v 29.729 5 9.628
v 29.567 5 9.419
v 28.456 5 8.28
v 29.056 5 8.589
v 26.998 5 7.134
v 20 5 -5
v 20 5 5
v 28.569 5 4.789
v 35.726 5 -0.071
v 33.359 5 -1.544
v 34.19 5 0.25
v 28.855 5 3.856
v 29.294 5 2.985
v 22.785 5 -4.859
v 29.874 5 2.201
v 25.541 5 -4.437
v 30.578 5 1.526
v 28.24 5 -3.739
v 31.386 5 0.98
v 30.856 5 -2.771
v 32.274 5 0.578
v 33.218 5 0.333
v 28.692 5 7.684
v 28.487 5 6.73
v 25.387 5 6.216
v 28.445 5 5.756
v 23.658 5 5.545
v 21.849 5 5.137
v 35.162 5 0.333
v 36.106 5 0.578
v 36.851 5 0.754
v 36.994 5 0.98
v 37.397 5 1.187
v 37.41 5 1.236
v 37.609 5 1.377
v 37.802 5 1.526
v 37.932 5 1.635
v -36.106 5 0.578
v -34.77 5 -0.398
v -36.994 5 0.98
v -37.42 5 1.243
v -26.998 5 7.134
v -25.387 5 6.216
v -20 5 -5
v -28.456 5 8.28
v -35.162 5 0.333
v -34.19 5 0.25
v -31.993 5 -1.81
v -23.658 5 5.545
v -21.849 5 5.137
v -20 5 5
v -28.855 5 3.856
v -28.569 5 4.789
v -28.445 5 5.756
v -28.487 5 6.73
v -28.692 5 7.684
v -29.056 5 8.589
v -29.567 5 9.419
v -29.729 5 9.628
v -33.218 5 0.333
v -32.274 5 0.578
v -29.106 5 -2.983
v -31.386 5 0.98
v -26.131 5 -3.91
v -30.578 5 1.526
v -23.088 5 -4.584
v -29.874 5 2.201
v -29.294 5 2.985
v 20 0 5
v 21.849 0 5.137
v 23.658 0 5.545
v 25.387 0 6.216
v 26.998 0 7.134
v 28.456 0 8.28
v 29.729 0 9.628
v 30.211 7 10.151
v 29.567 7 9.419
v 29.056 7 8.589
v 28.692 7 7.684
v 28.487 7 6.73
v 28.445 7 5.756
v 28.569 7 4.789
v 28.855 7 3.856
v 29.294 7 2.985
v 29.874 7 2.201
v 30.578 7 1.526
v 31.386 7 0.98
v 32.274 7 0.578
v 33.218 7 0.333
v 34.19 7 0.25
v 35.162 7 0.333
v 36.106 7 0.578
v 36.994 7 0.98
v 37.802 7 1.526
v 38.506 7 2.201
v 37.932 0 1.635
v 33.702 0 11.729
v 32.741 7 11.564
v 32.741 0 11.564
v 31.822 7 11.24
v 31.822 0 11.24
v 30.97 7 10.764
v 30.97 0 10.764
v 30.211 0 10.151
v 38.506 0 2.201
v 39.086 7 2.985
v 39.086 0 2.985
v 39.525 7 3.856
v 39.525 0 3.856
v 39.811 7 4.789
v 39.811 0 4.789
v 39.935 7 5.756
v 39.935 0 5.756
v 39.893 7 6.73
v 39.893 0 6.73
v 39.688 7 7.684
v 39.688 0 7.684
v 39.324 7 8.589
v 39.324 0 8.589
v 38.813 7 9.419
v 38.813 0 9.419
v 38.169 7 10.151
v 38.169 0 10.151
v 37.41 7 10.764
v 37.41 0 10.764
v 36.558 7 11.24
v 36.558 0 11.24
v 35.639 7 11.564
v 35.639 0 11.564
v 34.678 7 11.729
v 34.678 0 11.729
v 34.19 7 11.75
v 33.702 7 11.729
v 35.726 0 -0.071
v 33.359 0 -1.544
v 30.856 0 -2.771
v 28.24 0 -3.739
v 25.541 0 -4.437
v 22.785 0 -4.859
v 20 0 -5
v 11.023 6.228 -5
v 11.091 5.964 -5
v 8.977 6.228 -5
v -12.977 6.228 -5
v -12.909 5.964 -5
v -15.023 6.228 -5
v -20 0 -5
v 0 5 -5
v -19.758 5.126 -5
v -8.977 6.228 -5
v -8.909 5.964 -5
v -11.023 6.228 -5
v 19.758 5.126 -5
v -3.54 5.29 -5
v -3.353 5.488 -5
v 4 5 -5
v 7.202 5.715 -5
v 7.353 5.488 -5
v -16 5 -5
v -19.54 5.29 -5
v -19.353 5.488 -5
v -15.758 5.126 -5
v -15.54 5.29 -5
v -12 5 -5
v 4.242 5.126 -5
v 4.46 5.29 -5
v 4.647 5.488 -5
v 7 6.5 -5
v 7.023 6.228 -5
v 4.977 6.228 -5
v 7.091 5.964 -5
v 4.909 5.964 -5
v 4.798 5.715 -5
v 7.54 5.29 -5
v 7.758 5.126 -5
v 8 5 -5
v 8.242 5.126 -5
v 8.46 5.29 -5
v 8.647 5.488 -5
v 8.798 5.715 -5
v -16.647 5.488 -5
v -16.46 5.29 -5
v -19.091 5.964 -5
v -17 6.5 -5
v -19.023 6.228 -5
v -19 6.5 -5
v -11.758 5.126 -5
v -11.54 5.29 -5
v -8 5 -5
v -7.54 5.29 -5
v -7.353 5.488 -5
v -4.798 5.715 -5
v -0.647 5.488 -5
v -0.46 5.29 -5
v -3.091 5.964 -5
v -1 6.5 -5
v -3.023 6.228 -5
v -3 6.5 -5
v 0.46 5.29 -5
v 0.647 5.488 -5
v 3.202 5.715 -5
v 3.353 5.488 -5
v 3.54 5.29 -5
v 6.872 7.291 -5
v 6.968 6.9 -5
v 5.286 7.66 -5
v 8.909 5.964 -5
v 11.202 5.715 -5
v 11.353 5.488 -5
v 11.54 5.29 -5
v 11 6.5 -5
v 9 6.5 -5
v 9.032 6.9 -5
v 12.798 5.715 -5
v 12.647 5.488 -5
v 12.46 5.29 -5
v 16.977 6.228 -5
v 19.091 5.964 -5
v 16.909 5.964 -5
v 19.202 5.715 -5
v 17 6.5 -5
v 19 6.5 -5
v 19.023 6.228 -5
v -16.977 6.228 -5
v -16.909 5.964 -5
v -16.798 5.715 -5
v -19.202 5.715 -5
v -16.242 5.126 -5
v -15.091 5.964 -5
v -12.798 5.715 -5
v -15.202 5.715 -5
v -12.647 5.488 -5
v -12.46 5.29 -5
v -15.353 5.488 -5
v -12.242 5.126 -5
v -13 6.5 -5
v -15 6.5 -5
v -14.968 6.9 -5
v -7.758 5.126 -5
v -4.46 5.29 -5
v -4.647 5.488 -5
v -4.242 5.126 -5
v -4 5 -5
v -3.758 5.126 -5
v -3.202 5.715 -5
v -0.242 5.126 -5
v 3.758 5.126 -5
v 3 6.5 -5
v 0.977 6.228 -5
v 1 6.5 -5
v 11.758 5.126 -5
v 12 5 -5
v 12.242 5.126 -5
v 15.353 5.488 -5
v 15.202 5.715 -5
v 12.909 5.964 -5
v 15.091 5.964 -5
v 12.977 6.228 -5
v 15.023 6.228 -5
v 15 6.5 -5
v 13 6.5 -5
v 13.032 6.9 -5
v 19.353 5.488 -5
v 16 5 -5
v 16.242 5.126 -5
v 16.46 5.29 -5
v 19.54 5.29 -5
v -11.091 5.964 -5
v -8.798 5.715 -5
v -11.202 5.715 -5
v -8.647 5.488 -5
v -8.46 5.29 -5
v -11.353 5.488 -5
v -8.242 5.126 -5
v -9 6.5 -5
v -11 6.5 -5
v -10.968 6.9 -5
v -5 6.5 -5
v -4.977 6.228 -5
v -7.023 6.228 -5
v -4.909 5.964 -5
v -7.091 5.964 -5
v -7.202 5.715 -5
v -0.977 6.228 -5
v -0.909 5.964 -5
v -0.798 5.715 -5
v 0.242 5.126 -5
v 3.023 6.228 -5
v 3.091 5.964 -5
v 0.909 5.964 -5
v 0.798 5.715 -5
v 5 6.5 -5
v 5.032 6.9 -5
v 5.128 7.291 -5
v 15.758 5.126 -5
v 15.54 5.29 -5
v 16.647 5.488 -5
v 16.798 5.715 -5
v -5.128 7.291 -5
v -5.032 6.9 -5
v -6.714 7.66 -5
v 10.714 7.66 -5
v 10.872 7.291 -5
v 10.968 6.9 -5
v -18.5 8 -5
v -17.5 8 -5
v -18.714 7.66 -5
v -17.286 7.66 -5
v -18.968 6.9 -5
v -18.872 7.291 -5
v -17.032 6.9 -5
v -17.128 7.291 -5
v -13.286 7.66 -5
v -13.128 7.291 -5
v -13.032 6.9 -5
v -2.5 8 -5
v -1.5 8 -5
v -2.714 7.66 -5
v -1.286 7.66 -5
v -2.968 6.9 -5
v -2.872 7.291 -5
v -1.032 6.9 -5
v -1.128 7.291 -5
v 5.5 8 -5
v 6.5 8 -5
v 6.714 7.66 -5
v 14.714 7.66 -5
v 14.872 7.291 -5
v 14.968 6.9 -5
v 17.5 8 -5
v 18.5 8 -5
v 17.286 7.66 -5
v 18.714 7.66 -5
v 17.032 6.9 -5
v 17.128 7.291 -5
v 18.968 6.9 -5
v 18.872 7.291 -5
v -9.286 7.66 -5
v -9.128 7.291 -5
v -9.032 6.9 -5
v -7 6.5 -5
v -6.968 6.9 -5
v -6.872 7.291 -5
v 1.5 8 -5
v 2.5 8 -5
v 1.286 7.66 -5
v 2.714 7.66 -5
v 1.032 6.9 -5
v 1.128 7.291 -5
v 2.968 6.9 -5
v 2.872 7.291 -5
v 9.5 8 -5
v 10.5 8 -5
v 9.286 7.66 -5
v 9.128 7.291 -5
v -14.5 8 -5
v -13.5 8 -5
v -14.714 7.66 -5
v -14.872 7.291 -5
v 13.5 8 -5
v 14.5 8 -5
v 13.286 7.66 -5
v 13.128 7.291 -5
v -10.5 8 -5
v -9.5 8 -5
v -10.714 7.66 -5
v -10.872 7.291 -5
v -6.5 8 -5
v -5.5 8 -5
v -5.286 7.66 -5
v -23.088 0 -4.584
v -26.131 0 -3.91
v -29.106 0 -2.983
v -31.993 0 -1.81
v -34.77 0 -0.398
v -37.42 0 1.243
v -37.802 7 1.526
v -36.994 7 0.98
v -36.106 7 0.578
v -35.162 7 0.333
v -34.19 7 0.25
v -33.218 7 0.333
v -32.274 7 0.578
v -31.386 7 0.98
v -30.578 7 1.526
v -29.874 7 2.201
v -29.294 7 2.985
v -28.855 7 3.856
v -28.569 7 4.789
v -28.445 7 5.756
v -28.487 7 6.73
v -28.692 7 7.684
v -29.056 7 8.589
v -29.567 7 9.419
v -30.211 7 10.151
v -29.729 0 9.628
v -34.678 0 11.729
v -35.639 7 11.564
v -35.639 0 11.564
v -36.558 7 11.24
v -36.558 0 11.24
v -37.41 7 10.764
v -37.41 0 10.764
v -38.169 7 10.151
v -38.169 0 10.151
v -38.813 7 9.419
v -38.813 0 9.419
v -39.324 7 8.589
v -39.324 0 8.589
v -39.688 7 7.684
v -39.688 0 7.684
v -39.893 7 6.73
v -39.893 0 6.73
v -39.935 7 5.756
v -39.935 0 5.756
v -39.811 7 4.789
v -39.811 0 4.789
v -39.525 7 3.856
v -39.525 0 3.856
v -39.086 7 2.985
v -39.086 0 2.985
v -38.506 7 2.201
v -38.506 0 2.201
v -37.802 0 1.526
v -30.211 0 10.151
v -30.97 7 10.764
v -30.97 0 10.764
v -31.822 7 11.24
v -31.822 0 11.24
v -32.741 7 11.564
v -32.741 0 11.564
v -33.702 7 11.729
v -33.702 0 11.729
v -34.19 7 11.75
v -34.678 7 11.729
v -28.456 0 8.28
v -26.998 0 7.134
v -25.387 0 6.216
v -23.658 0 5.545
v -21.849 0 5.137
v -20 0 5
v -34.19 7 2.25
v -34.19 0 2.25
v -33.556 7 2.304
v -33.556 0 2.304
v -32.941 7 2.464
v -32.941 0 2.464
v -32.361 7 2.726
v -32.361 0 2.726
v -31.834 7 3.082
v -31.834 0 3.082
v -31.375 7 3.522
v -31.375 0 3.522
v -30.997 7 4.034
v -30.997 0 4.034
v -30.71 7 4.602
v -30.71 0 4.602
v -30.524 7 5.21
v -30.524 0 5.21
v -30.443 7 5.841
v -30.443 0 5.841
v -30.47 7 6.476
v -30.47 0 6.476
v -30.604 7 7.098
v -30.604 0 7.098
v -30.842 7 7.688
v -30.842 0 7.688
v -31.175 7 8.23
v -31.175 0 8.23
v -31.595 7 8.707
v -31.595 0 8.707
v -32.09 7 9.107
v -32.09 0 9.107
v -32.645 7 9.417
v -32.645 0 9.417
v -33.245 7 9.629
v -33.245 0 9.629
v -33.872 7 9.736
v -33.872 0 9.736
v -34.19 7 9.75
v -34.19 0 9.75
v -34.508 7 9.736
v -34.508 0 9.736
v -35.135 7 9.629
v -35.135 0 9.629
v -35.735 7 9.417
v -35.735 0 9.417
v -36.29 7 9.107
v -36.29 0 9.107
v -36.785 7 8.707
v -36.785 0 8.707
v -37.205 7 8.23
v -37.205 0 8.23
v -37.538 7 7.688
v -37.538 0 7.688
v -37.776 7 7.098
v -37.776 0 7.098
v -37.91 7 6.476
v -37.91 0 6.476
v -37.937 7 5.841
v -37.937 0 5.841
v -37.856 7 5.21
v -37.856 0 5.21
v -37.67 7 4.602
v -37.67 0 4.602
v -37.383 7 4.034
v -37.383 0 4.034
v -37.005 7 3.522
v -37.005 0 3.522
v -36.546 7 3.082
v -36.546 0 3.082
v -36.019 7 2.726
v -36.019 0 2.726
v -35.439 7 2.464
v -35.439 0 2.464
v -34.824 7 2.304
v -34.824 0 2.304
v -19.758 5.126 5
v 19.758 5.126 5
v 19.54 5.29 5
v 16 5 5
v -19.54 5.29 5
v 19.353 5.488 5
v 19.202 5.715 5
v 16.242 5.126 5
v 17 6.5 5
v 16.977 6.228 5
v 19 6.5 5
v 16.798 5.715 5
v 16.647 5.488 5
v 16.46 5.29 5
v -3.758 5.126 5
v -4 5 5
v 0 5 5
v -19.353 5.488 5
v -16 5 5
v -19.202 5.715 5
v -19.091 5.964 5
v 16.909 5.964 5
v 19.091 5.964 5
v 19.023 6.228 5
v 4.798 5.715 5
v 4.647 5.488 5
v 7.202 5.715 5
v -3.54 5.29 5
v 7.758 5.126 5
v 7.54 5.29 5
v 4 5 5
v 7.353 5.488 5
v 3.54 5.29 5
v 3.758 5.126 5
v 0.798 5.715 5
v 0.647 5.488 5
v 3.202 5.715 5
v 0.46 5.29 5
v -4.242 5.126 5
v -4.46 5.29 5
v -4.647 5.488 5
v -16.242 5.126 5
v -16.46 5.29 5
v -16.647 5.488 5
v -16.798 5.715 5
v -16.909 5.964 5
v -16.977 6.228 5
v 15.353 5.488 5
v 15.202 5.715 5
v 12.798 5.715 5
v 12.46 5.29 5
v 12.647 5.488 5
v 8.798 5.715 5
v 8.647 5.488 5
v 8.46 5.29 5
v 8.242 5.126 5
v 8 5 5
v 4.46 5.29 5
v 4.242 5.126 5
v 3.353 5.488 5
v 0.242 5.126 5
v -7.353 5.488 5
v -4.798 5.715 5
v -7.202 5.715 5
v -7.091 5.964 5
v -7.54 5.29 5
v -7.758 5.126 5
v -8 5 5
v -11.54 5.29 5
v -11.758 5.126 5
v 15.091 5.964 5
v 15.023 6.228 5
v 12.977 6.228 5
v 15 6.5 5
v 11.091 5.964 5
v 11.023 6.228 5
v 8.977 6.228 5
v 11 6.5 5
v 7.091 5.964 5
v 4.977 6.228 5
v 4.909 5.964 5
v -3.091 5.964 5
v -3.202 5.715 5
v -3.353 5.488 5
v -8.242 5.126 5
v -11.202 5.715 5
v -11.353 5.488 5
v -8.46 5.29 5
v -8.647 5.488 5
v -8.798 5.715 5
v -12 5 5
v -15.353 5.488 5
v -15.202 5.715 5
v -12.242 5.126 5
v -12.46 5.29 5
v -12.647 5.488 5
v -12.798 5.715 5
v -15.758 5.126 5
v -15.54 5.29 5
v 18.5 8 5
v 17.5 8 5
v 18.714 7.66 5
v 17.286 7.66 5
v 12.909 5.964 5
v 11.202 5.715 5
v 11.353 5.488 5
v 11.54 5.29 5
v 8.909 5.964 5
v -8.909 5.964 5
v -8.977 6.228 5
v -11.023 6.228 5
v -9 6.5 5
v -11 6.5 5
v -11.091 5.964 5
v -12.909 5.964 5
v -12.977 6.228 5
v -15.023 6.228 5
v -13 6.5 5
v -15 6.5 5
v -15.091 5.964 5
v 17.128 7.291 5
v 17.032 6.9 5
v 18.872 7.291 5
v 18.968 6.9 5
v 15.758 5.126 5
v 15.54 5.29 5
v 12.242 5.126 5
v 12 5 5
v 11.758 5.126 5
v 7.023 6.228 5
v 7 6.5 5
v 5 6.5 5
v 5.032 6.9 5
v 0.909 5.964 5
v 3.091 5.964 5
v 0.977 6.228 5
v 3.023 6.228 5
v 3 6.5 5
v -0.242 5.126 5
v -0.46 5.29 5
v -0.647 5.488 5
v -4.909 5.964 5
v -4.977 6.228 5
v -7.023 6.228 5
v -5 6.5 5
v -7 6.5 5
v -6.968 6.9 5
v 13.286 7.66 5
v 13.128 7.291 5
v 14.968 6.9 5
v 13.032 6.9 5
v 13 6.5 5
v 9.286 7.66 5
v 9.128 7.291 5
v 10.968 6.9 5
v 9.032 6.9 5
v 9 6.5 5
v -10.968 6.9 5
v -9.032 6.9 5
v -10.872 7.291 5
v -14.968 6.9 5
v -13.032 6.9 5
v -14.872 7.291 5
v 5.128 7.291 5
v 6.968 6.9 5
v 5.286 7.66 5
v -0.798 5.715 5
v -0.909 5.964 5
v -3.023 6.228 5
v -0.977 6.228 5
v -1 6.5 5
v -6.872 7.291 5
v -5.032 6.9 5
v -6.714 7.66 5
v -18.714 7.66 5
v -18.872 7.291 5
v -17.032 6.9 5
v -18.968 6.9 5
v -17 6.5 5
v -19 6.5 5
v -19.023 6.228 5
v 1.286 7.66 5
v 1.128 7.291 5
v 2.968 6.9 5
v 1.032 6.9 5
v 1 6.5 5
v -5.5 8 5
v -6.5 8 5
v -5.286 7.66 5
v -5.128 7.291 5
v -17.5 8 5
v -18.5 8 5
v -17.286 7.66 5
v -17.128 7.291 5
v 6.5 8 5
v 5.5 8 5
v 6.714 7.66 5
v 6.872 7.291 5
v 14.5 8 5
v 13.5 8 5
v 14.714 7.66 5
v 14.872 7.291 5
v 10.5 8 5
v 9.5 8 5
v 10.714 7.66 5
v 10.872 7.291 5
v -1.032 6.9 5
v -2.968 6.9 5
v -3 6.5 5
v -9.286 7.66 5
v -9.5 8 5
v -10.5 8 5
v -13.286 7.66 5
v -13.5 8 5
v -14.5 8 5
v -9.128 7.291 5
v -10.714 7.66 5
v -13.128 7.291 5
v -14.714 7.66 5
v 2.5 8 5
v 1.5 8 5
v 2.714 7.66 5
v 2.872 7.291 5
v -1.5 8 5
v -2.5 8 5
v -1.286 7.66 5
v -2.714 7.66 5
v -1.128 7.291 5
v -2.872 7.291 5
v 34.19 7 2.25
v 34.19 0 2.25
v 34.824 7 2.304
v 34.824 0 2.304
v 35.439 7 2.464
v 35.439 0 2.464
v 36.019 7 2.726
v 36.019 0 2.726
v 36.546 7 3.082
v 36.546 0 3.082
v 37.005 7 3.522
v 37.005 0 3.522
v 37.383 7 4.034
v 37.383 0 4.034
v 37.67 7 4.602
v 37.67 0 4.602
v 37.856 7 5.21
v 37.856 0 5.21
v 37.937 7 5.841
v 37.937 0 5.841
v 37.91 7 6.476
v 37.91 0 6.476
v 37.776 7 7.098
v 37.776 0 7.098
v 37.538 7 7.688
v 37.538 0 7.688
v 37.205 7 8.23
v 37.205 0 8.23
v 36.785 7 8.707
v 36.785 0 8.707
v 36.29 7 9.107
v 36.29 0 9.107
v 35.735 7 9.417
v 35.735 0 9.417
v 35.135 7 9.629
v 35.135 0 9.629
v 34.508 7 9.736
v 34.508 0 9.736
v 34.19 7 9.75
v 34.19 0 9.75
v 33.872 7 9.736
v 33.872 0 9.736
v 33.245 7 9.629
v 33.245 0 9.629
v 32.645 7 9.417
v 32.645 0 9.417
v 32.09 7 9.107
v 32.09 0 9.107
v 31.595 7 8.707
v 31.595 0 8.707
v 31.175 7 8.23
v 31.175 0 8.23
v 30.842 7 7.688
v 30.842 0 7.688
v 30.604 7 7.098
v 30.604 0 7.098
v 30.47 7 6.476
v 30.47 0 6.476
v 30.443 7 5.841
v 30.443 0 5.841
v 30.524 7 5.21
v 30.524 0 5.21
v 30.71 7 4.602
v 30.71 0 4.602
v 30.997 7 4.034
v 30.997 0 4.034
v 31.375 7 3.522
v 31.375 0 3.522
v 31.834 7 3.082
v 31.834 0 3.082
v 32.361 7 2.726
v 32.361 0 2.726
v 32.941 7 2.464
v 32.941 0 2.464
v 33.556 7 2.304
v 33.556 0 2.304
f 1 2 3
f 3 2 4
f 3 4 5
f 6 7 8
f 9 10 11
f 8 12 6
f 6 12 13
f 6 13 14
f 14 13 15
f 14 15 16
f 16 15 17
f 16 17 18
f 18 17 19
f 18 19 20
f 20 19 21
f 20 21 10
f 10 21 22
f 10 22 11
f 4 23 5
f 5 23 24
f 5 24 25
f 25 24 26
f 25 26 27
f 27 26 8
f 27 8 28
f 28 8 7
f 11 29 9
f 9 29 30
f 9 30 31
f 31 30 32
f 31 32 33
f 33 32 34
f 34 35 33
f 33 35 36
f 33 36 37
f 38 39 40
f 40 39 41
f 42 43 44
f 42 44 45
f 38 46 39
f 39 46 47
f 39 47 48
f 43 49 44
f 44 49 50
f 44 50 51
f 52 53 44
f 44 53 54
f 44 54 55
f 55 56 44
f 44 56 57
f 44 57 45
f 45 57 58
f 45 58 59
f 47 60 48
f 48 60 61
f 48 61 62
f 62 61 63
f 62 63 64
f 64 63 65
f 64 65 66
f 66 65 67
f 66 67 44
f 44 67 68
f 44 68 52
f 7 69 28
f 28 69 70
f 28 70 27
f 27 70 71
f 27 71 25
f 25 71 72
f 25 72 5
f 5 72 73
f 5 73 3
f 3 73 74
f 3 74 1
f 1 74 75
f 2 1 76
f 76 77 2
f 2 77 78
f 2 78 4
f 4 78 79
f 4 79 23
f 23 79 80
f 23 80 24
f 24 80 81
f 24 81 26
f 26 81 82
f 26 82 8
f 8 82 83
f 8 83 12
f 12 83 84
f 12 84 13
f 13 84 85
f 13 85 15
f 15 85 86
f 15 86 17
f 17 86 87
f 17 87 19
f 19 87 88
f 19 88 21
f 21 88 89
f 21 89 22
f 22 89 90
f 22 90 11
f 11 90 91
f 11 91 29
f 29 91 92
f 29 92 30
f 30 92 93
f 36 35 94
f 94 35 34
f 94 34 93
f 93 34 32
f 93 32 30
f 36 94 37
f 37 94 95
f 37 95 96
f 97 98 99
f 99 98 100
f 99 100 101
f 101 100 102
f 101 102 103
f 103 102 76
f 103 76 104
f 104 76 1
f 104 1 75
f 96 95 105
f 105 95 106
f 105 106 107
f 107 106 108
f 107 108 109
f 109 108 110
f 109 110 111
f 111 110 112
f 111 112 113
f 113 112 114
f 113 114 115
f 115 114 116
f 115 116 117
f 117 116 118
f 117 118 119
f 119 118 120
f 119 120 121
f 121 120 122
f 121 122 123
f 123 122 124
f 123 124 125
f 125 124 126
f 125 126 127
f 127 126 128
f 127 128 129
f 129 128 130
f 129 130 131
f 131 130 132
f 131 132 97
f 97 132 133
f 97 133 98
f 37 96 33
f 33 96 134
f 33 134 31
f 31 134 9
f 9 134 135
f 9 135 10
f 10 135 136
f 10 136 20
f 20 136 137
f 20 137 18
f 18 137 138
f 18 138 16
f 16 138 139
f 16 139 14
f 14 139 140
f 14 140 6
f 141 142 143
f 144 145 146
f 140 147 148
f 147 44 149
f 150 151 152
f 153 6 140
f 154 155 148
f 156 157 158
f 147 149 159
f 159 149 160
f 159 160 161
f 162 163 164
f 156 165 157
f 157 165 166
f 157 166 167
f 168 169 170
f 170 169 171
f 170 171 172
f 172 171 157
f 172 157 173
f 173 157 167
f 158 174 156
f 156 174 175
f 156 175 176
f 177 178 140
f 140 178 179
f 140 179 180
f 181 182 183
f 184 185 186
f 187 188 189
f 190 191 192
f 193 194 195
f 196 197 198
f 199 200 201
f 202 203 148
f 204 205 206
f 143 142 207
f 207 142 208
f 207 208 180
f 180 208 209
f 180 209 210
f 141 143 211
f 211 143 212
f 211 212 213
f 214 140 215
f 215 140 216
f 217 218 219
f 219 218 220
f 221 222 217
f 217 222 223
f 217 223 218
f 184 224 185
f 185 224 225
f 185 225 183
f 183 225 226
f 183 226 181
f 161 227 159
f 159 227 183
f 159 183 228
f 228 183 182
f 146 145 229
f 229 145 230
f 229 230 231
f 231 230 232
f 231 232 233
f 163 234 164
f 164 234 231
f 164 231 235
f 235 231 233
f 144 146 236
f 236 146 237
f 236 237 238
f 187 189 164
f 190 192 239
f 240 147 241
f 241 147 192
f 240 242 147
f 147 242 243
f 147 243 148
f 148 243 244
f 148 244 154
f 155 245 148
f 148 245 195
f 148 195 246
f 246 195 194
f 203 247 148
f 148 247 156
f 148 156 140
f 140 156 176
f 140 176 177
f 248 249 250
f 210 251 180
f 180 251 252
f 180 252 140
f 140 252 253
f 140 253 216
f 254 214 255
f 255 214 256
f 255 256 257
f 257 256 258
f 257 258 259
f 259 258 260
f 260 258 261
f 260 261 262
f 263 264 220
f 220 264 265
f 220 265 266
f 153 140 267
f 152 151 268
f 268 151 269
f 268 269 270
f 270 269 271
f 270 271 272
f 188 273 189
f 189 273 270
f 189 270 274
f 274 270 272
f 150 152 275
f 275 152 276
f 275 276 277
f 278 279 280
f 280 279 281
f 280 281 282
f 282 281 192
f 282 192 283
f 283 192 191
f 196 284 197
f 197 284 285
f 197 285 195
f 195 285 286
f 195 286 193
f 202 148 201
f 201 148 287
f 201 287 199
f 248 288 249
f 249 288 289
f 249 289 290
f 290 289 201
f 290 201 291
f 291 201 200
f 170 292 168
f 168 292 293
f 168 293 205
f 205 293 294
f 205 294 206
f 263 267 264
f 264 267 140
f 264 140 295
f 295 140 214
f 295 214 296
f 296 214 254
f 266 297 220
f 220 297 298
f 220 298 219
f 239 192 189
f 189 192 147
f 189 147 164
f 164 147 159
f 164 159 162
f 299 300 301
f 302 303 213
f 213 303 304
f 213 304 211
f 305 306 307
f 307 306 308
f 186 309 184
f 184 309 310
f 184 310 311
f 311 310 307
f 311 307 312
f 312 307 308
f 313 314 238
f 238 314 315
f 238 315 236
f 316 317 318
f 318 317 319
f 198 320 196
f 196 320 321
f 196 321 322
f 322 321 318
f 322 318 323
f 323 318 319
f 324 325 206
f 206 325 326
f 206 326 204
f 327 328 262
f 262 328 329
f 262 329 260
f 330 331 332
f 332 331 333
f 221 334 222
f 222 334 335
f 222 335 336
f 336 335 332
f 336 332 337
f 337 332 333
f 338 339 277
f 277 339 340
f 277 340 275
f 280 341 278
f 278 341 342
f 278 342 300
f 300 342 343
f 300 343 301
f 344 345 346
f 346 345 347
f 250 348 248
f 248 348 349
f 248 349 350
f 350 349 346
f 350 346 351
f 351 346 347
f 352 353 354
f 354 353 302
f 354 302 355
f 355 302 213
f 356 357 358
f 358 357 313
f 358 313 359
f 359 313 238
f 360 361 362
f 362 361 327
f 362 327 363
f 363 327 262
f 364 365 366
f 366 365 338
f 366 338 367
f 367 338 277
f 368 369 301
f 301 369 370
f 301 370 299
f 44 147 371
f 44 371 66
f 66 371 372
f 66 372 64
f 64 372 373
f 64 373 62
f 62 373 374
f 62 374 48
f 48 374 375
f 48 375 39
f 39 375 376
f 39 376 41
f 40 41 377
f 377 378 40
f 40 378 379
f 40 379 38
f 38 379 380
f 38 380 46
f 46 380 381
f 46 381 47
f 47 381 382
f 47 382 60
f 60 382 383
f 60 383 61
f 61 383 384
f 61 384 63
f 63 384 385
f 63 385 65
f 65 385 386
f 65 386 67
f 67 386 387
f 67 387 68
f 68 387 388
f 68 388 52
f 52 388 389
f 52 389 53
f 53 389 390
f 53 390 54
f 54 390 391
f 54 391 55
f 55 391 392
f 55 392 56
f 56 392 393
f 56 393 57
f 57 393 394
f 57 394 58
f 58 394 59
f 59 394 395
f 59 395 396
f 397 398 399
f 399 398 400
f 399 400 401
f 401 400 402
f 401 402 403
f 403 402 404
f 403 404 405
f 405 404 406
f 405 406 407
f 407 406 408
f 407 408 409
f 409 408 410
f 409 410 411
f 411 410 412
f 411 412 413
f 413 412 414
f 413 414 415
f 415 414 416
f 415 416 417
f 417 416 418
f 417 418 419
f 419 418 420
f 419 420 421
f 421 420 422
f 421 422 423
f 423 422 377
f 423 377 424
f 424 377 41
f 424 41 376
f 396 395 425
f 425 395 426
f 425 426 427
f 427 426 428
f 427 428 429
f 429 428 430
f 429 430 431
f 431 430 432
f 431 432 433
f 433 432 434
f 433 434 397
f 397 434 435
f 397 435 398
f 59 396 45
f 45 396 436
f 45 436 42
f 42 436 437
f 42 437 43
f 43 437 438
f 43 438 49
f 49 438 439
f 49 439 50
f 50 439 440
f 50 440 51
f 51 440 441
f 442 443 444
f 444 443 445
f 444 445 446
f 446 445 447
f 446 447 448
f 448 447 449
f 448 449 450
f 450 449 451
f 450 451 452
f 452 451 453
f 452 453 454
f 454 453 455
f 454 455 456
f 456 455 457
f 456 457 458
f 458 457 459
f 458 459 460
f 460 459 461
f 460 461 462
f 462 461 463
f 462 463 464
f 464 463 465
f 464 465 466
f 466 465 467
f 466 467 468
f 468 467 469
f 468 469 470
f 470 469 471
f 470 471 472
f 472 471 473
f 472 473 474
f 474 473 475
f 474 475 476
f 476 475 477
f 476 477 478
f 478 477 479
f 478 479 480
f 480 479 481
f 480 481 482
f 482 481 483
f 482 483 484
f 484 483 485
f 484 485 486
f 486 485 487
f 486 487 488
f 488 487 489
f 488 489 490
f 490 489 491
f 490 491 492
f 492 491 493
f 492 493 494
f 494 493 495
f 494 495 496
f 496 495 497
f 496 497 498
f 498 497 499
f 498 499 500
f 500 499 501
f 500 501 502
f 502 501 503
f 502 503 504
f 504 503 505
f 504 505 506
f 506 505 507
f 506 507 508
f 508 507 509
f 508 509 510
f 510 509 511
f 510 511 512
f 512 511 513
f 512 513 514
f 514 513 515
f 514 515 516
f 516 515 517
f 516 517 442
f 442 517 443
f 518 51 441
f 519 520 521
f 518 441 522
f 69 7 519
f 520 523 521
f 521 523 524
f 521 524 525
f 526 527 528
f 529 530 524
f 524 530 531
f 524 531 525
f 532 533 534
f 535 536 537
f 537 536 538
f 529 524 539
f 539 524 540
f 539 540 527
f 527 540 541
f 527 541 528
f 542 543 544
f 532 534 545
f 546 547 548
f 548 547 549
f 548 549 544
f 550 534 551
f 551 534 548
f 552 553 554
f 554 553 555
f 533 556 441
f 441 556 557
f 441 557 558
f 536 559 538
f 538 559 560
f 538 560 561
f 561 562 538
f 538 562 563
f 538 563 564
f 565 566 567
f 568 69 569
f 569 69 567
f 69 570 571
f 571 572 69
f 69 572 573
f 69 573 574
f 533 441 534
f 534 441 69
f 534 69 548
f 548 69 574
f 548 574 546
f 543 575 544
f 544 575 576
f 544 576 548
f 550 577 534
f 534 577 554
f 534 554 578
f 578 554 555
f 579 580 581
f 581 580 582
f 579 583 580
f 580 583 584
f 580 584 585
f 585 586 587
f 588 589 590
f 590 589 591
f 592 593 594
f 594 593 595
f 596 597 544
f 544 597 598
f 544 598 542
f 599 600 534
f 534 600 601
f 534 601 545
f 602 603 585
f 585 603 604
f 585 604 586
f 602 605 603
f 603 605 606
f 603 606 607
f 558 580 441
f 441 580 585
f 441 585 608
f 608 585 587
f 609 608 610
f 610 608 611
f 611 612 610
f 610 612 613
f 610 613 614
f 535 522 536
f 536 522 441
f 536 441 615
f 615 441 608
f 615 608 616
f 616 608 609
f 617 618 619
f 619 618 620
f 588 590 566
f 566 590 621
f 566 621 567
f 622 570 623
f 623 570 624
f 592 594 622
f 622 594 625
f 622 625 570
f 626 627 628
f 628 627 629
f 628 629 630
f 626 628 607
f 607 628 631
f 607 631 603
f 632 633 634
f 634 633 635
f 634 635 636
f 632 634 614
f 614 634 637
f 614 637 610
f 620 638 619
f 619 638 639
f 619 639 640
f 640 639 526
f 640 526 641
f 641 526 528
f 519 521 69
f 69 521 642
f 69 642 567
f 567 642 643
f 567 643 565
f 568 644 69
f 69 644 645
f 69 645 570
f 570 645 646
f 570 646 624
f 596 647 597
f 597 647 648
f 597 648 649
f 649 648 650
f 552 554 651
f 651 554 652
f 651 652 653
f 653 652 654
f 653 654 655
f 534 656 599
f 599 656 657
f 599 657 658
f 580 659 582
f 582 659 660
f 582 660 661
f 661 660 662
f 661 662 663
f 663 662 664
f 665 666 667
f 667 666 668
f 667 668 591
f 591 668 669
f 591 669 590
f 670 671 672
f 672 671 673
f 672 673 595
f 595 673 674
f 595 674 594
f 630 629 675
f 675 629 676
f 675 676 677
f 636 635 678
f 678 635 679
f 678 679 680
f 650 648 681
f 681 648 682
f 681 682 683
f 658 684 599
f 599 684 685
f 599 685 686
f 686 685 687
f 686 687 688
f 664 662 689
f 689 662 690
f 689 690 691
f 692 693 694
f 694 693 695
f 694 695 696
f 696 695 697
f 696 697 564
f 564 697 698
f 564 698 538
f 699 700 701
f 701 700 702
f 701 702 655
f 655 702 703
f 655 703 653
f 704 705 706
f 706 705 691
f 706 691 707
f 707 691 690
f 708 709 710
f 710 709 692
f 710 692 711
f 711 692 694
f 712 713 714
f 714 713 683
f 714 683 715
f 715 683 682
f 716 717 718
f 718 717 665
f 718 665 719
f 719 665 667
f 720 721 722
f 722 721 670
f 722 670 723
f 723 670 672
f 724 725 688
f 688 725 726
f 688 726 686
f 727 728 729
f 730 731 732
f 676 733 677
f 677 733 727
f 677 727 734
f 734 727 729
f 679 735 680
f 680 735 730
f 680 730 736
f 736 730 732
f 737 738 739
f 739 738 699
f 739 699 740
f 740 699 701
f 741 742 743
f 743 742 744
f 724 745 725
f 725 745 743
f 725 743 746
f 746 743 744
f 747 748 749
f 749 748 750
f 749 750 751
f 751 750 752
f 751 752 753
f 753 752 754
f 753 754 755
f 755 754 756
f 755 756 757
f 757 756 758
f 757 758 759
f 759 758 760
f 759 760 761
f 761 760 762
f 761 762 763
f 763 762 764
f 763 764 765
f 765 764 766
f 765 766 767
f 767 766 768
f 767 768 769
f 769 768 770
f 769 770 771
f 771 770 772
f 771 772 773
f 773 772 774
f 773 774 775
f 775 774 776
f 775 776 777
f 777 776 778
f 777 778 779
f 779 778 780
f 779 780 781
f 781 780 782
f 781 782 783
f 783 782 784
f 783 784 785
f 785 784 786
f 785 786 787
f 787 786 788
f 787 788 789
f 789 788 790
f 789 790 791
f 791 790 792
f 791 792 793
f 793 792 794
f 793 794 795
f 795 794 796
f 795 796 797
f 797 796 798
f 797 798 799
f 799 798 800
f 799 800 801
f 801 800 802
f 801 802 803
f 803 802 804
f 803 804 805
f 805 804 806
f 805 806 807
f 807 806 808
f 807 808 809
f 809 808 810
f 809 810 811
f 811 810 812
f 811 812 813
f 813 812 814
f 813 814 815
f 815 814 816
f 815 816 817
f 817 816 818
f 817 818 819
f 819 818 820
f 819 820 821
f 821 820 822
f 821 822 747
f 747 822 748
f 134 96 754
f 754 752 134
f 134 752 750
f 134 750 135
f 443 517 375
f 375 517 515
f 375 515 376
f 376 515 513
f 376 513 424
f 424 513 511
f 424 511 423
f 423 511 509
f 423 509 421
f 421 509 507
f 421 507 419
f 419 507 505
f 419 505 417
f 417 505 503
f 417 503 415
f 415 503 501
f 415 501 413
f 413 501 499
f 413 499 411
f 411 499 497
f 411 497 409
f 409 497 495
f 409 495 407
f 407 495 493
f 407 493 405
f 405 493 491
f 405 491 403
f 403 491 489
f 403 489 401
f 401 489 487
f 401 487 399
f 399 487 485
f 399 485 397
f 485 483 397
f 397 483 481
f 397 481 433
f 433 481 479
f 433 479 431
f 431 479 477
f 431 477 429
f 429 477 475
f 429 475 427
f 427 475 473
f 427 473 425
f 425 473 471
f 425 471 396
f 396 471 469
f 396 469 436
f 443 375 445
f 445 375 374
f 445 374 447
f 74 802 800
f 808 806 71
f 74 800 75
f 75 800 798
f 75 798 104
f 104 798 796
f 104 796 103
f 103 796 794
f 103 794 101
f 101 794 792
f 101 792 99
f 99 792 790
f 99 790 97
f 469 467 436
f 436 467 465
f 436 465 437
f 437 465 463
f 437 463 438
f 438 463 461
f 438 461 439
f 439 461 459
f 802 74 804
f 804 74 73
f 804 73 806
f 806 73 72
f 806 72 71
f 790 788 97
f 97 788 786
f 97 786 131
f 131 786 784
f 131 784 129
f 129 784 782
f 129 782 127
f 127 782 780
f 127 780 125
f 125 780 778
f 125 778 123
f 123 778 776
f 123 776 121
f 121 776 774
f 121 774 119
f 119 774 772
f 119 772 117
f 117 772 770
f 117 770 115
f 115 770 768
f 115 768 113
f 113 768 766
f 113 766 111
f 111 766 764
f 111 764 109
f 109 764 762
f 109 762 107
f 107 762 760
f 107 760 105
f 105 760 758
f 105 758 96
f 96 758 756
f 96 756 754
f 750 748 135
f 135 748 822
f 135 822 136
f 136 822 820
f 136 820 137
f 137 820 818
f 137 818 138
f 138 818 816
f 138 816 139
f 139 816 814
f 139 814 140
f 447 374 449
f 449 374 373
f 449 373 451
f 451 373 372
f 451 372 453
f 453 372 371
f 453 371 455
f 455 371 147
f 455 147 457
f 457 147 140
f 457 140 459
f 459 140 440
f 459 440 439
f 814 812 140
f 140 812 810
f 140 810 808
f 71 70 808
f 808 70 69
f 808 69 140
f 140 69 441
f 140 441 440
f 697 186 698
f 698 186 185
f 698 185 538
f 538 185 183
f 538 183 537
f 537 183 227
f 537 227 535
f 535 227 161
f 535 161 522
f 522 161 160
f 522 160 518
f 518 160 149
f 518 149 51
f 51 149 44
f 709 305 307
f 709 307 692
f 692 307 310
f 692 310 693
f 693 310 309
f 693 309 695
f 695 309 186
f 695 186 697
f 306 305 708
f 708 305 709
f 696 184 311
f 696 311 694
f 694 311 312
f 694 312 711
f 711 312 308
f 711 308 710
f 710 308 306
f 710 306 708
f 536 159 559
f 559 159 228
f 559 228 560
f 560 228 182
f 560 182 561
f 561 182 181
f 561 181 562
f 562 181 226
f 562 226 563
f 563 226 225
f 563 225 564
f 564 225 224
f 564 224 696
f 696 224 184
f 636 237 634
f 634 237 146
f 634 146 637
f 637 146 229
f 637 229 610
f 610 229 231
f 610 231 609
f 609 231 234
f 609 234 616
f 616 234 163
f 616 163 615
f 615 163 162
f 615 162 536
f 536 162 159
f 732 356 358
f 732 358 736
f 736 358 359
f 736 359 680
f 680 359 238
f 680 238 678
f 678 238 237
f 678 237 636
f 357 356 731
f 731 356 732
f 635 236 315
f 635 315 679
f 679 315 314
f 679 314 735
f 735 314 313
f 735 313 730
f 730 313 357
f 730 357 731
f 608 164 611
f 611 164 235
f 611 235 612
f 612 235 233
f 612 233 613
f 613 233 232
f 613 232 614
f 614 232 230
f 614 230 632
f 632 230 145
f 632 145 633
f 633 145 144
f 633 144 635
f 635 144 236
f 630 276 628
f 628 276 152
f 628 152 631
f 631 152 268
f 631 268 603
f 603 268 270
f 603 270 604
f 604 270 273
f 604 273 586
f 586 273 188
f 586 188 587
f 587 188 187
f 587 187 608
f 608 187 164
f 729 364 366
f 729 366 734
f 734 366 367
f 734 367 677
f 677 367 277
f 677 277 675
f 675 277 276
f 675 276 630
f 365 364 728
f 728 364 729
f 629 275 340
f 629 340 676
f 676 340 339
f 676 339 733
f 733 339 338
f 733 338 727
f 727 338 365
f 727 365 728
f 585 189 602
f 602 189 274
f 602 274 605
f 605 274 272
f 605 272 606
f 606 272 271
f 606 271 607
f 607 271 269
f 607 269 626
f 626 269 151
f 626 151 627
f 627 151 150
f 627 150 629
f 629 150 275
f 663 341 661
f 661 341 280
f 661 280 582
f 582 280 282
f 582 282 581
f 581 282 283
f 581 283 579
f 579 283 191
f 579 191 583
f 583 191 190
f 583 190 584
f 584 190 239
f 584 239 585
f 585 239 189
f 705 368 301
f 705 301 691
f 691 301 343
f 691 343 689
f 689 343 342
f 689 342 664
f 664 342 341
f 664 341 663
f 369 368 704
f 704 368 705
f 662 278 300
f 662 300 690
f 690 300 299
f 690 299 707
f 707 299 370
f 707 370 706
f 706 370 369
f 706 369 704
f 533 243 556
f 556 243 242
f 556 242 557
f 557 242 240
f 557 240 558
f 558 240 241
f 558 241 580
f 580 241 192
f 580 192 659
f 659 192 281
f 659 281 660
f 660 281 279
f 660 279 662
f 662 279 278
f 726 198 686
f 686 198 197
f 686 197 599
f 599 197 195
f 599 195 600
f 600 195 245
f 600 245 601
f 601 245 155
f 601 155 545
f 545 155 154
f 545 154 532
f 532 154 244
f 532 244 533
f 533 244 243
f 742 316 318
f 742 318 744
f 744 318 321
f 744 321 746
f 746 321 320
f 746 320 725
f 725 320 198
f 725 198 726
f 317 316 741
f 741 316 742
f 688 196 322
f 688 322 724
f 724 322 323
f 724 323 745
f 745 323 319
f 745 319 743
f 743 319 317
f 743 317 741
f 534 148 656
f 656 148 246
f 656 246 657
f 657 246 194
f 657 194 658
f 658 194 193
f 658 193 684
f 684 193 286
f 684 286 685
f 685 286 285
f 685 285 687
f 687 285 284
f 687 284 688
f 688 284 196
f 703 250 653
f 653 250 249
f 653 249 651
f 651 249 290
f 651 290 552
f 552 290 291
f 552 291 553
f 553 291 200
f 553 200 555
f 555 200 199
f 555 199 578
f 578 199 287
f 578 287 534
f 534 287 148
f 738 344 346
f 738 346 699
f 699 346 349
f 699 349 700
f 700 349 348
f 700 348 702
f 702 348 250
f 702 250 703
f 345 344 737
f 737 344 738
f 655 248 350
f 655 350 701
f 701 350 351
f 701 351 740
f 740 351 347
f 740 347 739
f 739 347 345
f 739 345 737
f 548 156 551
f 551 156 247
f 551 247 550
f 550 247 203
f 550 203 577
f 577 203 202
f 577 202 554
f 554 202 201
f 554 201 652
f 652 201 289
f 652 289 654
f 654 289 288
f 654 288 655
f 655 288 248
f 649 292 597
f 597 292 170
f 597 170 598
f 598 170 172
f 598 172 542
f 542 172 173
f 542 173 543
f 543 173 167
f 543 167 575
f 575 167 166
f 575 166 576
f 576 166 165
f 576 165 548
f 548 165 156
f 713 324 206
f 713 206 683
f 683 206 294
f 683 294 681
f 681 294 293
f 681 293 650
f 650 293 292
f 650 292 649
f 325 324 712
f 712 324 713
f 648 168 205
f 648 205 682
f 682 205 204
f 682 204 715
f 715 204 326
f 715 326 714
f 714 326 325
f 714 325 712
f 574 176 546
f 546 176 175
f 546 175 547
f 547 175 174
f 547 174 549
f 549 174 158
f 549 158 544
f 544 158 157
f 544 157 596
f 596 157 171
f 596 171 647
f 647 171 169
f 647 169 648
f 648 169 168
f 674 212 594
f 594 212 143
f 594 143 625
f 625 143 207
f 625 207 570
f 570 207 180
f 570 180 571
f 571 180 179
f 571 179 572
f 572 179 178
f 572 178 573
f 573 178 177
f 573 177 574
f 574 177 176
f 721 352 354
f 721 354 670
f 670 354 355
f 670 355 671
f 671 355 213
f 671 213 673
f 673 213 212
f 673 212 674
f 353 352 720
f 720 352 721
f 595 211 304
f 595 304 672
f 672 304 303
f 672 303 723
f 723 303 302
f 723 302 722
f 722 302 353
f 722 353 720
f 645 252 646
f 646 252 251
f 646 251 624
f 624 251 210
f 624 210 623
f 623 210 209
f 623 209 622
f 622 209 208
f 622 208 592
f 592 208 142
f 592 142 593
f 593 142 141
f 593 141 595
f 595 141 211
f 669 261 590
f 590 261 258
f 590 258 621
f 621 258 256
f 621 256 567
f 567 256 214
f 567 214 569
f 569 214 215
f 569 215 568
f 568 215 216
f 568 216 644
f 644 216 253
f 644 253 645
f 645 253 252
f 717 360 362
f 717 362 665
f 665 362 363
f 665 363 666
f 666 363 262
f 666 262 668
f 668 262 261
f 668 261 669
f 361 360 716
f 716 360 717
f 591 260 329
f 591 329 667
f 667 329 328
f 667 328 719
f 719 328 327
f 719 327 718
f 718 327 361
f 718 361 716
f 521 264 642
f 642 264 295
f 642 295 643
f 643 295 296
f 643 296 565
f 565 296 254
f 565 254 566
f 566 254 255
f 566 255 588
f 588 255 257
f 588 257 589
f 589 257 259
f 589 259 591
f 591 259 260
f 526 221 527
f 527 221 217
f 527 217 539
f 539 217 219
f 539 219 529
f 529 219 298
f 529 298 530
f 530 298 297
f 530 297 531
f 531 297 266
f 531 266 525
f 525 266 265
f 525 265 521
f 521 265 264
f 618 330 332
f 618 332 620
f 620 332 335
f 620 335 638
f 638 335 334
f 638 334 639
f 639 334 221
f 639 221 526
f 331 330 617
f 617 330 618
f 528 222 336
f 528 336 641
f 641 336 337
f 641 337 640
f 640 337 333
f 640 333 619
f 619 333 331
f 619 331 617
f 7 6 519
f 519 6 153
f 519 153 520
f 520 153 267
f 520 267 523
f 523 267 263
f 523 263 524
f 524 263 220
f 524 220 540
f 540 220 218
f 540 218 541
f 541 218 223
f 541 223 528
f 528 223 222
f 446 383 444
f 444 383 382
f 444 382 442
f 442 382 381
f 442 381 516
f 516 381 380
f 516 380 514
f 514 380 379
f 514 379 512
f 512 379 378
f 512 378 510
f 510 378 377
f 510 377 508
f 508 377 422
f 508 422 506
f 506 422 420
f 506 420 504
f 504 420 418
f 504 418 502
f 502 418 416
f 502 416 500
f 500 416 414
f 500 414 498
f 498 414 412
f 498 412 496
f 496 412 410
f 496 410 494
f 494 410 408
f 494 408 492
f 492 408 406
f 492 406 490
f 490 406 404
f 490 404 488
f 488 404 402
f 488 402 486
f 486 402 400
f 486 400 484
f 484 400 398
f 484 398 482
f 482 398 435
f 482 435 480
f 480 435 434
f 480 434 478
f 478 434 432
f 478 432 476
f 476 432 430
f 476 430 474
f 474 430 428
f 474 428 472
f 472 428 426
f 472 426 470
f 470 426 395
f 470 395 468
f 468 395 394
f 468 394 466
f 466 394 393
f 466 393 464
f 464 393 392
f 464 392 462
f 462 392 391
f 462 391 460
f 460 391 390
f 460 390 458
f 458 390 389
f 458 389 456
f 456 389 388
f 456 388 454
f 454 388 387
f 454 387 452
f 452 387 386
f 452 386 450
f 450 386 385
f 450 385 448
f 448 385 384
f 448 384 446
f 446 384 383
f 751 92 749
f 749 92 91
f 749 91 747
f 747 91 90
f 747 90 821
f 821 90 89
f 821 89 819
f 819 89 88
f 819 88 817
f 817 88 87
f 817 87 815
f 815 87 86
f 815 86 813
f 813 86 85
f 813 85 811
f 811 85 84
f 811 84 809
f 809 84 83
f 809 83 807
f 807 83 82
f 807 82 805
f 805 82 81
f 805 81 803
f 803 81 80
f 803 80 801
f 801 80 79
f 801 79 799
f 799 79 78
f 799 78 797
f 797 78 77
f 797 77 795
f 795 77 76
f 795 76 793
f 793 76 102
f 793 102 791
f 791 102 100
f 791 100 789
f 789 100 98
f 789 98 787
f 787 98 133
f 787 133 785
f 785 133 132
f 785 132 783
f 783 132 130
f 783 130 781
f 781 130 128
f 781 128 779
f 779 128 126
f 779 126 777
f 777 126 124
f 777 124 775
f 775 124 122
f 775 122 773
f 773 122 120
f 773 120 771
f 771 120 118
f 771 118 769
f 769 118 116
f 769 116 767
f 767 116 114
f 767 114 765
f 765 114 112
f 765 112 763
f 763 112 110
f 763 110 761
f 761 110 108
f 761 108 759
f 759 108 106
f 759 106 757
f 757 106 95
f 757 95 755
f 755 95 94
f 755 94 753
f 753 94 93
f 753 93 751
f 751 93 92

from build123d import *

# Parameters (mm, degrees)
SKETCH1_R                       = 3.75
BOSS_EXTRUDE1_DEPTH             = 5
BOSS_EXTRUDE2_REACH             = 43.932
SKETCH2_W                       = 1
SKETCH2_H                       = 1.5
BOSS_EXTRUDE2_DIRECTION_2_REACH = 43.932
LPATTERN1_COUNT                 = 10
LPATTERN1_PITCH                 = 4
SKETCH1_3_R                     = 5.75
SKETCH1_3_R_2                   = 3.75
BOSS_EXTRUDE3_DEPTH             = 7


with BuildPart() as part:
    # Sketch1 → Boss-Extrude1 (new body)
    with BuildSketch(Plane(origin=(0, 0, 0), x_dir=(1, 0, 0), z_dir=(0, 1, 0))):
        with BuildLine():
            ThreePointArc((-37.419913953, -1.242883661), (-38.427487159, -9.886669857), (-29.729020754, -9.627969703))
            ThreePointArc((-29.729020754, -9.627969703), (-25.386834609, -6.215943245), (-20, -5))
            Line((-20, -5), (20, -5))
            ThreePointArc((20, -5), (25.386834609, -6.215943245), (29.729020754, -9.627969703))
            ThreePointArc((29.729020754, -9.627969703), (38.202781159, -10.118262664), (37.932471123, -1.634635193))
            ThreePointArc((37.932471123, -1.634635193), (29.560228877, 3.288161479), (20, 5))
            Line((20, 5), (-20, 5))
            ThreePointArc((-20, 5), (-29.105909857, 2.983410588), (-37.419913953, -1.242883661))
        make_face()
        with Locations(Location((-34.19, -6, 0), (0, 0, 270))):
            Circle(SKETCH1_R, mode=Mode.SUBTRACT)
        with Locations(Location((34.19, -6, 0), (0, 0, 270))):
            Circle(SKETCH1_R, mode=Mode.SUBTRACT)
    extrude(amount=BOSS_EXTRUDE1_DEPTH)

    # Boss-Extrude2: up to this face of the body (flat: up to its plane)
    boss_extrude2_end = Plane(part.part.faces().sort_by_distance((0, 2.5, 5))[0])
    # Sketch2 → Boss-Extrude2 (add, up to the picked face)
    with BuildSketch(Plane.XY, mode=Mode.PRIVATE) as boss_extrude2_sk1:
        with BuildLine():
            ThreePointArc((-19, 6.5), (-19.272918272, 5.598612181), (-20, 5))
            Line((-20, 5), (-18, 5))
            Line((-18, 5), (-18, 6.5))
            Line((-18, 6.5), (-19, 6.5))
        make_face()
    boss_extrude2_tool1 = split(extrude(boss_extrude2_sk1.sketch, amount=BOSS_EXTRUDE2_REACH, mode=Mode.PRIVATE), bisect_by=boss_extrude2_end, keep=Keep.BOTH, mode=Mode.PRIVATE)
    # Sketch2 → Boss-Extrude2 (add, up to the picked face)
    with BuildSketch(Plane.XY, mode=Mode.PRIVATE) as boss_extrude2_sk2:
        with Locations((-17.5, 5.75)):
            Rectangle(SKETCH2_W, SKETCH2_H)
    boss_extrude2_tool2 = split(extrude(boss_extrude2_sk2.sketch, amount=BOSS_EXTRUDE2_REACH, mode=Mode.PRIVATE), bisect_by=boss_extrude2_end, keep=Keep.BOTH, mode=Mode.PRIVATE)
    # Sketch2 → Boss-Extrude2 (add, up to the picked face)
    with BuildSketch(Plane.XY, mode=Mode.PRIVATE) as boss_extrude2_sk3:
        with BuildLine():
            Line((-17, 6.5), (-17, 5))
            Line((-17, 5), (-16, 5))
            ThreePointArc((-16, 5), (-16.727081728, 5.598612181), (-17, 6.5))
        make_face()
    boss_extrude2_tool3 = split(extrude(boss_extrude2_sk3.sketch, amount=BOSS_EXTRUDE2_REACH, mode=Mode.PRIVATE), bisect_by=boss_extrude2_end, keep=Keep.BOTH, mode=Mode.PRIVATE)
    # Sketch2 → Boss-Extrude2 (add, up to the picked face)
    with BuildSketch(Plane.XY, mode=Mode.PRIVATE) as boss_extrude2_sk4:
        with BuildLine():
            Line((-18, 8), (-18, 6.5))
            Line((-18, 6.5), (-17, 6.5))
            ThreePointArc((-17, 6.5), (-17.128291755, 7.290569415), (-17.5, 8))
            Line((-17.5, 8), (-18, 8))
        make_face()
    boss_extrude2_tool4 = split(extrude(boss_extrude2_sk4.sketch, amount=BOSS_EXTRUDE2_REACH, mode=Mode.PRIVATE), bisect_by=boss_extrude2_end, keep=Keep.BOTH, mode=Mode.PRIVATE)
    # Sketch2 → Boss-Extrude2 (add, up to the picked face)
    with BuildSketch(Plane.XY, mode=Mode.PRIVATE) as boss_extrude2_sk5:
        with BuildLine():
            ThreePointArc((-18.5, 8), (-18.871708245, 7.290569415), (-19, 6.5))
            Line((-19, 6.5), (-18, 6.5))
            Line((-18, 6.5), (-18, 8))
            Line((-18, 8), (-18.5, 8))
        make_face()
    boss_extrude2_tool5 = split(extrude(boss_extrude2_sk5.sketch, amount=BOSS_EXTRUDE2_REACH, mode=Mode.PRIVATE), bisect_by=boss_extrude2_end, keep=Keep.BOTH, mode=Mode.PRIVATE)
    boss_extrude2_1 = boss_extrude2_tool1.solids().sort_by(Axis((-18.667854, 5.662777, 0), (0, 0, 1)))[0]
    add(boss_extrude2_1)
    boss_extrude2_2 = boss_extrude2_tool2.solids().sort_by(Axis((-17.5, 5.75, 0), (0, 0, 1)))[0]
    add(boss_extrude2_2)
    boss_extrude2_3 = boss_extrude2_tool3.solids().sort_by(Axis((-16.726983, 5.348311, 0), (0, 0, 1)))[0]
    add(boss_extrude2_3)
    boss_extrude2_4 = boss_extrude2_tool4.solids().sort_by(Axis((-17.56692, 7.177404, 0), (0, 0, 1)))[0]
    add(boss_extrude2_4)
    boss_extrude2_5 = boss_extrude2_tool5.solids().sort_by(Axis((-18.43308, 7.177404, 0), (0, 0, 1)))[0]
    add(boss_extrude2_5)
    boss_extrude2 = boss_extrude2_1 + boss_extrude2_2 + boss_extrude2_3 + boss_extrude2_4 + boss_extrude2_5  # Boss-Extrude2 as one shape, for the pattern or mirror that repeats it

    # Boss-Extrude2 direction 2: up to this face of the body (flat: up to its plane)
    boss_extrude2_direction_2_end = Plane(part.part.faces().sort_by_distance((0, 2.5, -5))[0])
    # Sketch2 → Boss-Extrude2 direction 2 (add, up to the picked face)
    with BuildSketch(Plane.XY, mode=Mode.PRIVATE) as boss_extrude2_direction_2_sk1:
        with BuildLine():
            ThreePointArc((-19, 6.5), (-19.272918272, 5.598612181), (-20, 5))
            Line((-20, 5), (-18, 5))
            Line((-18, 5), (-18, 6.5))
            Line((-18, 6.5), (-19, 6.5))
        make_face()
    boss_extrude2_direction_2_tool1 = split(extrude(boss_extrude2_direction_2_sk1.sketch, amount=-BOSS_EXTRUDE2_DIRECTION_2_REACH, mode=Mode.PRIVATE), bisect_by=boss_extrude2_direction_2_end, keep=Keep.BOTH, mode=Mode.PRIVATE)
    # Sketch2 → Boss-Extrude2 direction 2 (add, up to the picked face)
    with BuildSketch(Plane.XY, mode=Mode.PRIVATE) as boss_extrude2_direction_2_sk2:
        with Locations((-17.5, 5.75)):
            Rectangle(SKETCH2_W, SKETCH2_H)
    boss_extrude2_direction_2_tool2 = split(extrude(boss_extrude2_direction_2_sk2.sketch, amount=-BOSS_EXTRUDE2_DIRECTION_2_REACH, mode=Mode.PRIVATE), bisect_by=boss_extrude2_direction_2_end, keep=Keep.BOTH, mode=Mode.PRIVATE)
    # Sketch2 → Boss-Extrude2 direction 2 (add, up to the picked face)
    with BuildSketch(Plane.XY, mode=Mode.PRIVATE) as boss_extrude2_direction_2_sk3:
        with BuildLine():
            Line((-17, 6.5), (-17, 5))
            Line((-17, 5), (-16, 5))
            ThreePointArc((-16, 5), (-16.727081728, 5.598612181), (-17, 6.5))
        make_face()
    boss_extrude2_direction_2_tool3 = split(extrude(boss_extrude2_direction_2_sk3.sketch, amount=-BOSS_EXTRUDE2_DIRECTION_2_REACH, mode=Mode.PRIVATE), bisect_by=boss_extrude2_direction_2_end, keep=Keep.BOTH, mode=Mode.PRIVATE)
    # Sketch2 → Boss-Extrude2 direction 2 (add, up to the picked face)
    with BuildSketch(Plane.XY, mode=Mode.PRIVATE) as boss_extrude2_direction_2_sk4:
        with BuildLine():
            Line((-18, 8), (-18, 6.5))
            Line((-18, 6.5), (-17, 6.5))
            ThreePointArc((-17, 6.5), (-17.128291755, 7.290569415), (-17.5, 8))
            Line((-17.5, 8), (-18, 8))
        make_face()
    boss_extrude2_direction_2_tool4 = split(extrude(boss_extrude2_direction_2_sk4.sketch, amount=-BOSS_EXTRUDE2_DIRECTION_2_REACH, mode=Mode.PRIVATE), bisect_by=boss_extrude2_direction_2_end, keep=Keep.BOTH, mode=Mode.PRIVATE)
    # Sketch2 → Boss-Extrude2 direction 2 (add, up to the picked face)
    with BuildSketch(Plane.XY, mode=Mode.PRIVATE) as boss_extrude2_direction_2_sk5:
        with BuildLine():
            ThreePointArc((-18.5, 8), (-18.871708245, 7.290569415), (-19, 6.5))
            Line((-19, 6.5), (-18, 6.5))
            Line((-18, 6.5), (-18, 8))
            Line((-18, 8), (-18.5, 8))
        make_face()
    boss_extrude2_direction_2_tool5 = split(extrude(boss_extrude2_direction_2_sk5.sketch, amount=-BOSS_EXTRUDE2_DIRECTION_2_REACH, mode=Mode.PRIVATE), bisect_by=boss_extrude2_direction_2_end, keep=Keep.BOTH, mode=Mode.PRIVATE)
    boss_extrude2_direction_2_1 = boss_extrude2_direction_2_tool1.solids().sort_by(Axis((-18.667854, 5.662777, 0), (0, 0, -1)))[0]
    add(boss_extrude2_direction_2_1)
    boss_extrude2_direction_2_2 = boss_extrude2_direction_2_tool2.solids().sort_by(Axis((-17.5, 5.75, 0), (0, 0, -1)))[0]
    add(boss_extrude2_direction_2_2)
    boss_extrude2_direction_2_3 = boss_extrude2_direction_2_tool3.solids().sort_by(Axis((-16.726983, 5.348311, 0), (0, 0, -1)))[0]
    add(boss_extrude2_direction_2_3)
    boss_extrude2_direction_2_4 = boss_extrude2_direction_2_tool4.solids().sort_by(Axis((-17.56692, 7.177404, 0), (0, 0, -1)))[0]
    add(boss_extrude2_direction_2_4)
    boss_extrude2_direction_2_5 = boss_extrude2_direction_2_tool5.solids().sort_by(Axis((-18.43308, 7.177404, 0), (0, 0, -1)))[0]
    add(boss_extrude2_direction_2_5)
    boss_extrude2_direction_2 = boss_extrude2_direction_2_1 + boss_extrude2_direction_2_2 + boss_extrude2_direction_2_3 + boss_extrude2_direction_2_4 + boss_extrude2_direction_2_5  # Boss-Extrude2 direction 2 as one shape, for the pattern or mirror that repeats it

    # LPattern1: Boss-Extrude2, Boss-Extrude2 direction 2 ×10
    with Locations(*[(i * LPATTERN1_PITCH, 0, 0) for i in range(1, LPATTERN1_COUNT)]):
        add(boss_extrude2)
        add(boss_extrude2_direction_2)

    # Sketch1<3> → Boss-Extrude3 (add)
    # profile 1 of 2: a face of its own
    with BuildSketch(Plane(origin=(0, 0, 0), x_dir=(1, 0, 0), z_dir=(0, 1, 0))):
        with Locations(Location((-34.19, -6, 0), (0, 0, 124.175119346))):
            Circle(SKETCH1_3_R)
        with Locations(Location((-34.19, -6, 0), (0, 0, 270))):
            Circle(SKETCH1_3_R_2, mode=Mode.SUBTRACT)
    # profile 2 of 2: a face of its own
    with BuildSketch(Plane(origin=(0, 0, 0), x_dir=(1, 0, 0), z_dir=(0, 1, 0))):
        with Locations(Location((34.19, -6, 0), (0, 0, 49.393183525))):
            Circle(SKETCH1_3_R)
        with Locations(Location((34.19, -6, 0), (0, 0, 270))):
            Circle(SKETCH1_3_R_2, mode=Mode.SUBTRACT)
    extrude(amount=BOSS_EXTRUDE3_DEPTH)


solid = part.part
